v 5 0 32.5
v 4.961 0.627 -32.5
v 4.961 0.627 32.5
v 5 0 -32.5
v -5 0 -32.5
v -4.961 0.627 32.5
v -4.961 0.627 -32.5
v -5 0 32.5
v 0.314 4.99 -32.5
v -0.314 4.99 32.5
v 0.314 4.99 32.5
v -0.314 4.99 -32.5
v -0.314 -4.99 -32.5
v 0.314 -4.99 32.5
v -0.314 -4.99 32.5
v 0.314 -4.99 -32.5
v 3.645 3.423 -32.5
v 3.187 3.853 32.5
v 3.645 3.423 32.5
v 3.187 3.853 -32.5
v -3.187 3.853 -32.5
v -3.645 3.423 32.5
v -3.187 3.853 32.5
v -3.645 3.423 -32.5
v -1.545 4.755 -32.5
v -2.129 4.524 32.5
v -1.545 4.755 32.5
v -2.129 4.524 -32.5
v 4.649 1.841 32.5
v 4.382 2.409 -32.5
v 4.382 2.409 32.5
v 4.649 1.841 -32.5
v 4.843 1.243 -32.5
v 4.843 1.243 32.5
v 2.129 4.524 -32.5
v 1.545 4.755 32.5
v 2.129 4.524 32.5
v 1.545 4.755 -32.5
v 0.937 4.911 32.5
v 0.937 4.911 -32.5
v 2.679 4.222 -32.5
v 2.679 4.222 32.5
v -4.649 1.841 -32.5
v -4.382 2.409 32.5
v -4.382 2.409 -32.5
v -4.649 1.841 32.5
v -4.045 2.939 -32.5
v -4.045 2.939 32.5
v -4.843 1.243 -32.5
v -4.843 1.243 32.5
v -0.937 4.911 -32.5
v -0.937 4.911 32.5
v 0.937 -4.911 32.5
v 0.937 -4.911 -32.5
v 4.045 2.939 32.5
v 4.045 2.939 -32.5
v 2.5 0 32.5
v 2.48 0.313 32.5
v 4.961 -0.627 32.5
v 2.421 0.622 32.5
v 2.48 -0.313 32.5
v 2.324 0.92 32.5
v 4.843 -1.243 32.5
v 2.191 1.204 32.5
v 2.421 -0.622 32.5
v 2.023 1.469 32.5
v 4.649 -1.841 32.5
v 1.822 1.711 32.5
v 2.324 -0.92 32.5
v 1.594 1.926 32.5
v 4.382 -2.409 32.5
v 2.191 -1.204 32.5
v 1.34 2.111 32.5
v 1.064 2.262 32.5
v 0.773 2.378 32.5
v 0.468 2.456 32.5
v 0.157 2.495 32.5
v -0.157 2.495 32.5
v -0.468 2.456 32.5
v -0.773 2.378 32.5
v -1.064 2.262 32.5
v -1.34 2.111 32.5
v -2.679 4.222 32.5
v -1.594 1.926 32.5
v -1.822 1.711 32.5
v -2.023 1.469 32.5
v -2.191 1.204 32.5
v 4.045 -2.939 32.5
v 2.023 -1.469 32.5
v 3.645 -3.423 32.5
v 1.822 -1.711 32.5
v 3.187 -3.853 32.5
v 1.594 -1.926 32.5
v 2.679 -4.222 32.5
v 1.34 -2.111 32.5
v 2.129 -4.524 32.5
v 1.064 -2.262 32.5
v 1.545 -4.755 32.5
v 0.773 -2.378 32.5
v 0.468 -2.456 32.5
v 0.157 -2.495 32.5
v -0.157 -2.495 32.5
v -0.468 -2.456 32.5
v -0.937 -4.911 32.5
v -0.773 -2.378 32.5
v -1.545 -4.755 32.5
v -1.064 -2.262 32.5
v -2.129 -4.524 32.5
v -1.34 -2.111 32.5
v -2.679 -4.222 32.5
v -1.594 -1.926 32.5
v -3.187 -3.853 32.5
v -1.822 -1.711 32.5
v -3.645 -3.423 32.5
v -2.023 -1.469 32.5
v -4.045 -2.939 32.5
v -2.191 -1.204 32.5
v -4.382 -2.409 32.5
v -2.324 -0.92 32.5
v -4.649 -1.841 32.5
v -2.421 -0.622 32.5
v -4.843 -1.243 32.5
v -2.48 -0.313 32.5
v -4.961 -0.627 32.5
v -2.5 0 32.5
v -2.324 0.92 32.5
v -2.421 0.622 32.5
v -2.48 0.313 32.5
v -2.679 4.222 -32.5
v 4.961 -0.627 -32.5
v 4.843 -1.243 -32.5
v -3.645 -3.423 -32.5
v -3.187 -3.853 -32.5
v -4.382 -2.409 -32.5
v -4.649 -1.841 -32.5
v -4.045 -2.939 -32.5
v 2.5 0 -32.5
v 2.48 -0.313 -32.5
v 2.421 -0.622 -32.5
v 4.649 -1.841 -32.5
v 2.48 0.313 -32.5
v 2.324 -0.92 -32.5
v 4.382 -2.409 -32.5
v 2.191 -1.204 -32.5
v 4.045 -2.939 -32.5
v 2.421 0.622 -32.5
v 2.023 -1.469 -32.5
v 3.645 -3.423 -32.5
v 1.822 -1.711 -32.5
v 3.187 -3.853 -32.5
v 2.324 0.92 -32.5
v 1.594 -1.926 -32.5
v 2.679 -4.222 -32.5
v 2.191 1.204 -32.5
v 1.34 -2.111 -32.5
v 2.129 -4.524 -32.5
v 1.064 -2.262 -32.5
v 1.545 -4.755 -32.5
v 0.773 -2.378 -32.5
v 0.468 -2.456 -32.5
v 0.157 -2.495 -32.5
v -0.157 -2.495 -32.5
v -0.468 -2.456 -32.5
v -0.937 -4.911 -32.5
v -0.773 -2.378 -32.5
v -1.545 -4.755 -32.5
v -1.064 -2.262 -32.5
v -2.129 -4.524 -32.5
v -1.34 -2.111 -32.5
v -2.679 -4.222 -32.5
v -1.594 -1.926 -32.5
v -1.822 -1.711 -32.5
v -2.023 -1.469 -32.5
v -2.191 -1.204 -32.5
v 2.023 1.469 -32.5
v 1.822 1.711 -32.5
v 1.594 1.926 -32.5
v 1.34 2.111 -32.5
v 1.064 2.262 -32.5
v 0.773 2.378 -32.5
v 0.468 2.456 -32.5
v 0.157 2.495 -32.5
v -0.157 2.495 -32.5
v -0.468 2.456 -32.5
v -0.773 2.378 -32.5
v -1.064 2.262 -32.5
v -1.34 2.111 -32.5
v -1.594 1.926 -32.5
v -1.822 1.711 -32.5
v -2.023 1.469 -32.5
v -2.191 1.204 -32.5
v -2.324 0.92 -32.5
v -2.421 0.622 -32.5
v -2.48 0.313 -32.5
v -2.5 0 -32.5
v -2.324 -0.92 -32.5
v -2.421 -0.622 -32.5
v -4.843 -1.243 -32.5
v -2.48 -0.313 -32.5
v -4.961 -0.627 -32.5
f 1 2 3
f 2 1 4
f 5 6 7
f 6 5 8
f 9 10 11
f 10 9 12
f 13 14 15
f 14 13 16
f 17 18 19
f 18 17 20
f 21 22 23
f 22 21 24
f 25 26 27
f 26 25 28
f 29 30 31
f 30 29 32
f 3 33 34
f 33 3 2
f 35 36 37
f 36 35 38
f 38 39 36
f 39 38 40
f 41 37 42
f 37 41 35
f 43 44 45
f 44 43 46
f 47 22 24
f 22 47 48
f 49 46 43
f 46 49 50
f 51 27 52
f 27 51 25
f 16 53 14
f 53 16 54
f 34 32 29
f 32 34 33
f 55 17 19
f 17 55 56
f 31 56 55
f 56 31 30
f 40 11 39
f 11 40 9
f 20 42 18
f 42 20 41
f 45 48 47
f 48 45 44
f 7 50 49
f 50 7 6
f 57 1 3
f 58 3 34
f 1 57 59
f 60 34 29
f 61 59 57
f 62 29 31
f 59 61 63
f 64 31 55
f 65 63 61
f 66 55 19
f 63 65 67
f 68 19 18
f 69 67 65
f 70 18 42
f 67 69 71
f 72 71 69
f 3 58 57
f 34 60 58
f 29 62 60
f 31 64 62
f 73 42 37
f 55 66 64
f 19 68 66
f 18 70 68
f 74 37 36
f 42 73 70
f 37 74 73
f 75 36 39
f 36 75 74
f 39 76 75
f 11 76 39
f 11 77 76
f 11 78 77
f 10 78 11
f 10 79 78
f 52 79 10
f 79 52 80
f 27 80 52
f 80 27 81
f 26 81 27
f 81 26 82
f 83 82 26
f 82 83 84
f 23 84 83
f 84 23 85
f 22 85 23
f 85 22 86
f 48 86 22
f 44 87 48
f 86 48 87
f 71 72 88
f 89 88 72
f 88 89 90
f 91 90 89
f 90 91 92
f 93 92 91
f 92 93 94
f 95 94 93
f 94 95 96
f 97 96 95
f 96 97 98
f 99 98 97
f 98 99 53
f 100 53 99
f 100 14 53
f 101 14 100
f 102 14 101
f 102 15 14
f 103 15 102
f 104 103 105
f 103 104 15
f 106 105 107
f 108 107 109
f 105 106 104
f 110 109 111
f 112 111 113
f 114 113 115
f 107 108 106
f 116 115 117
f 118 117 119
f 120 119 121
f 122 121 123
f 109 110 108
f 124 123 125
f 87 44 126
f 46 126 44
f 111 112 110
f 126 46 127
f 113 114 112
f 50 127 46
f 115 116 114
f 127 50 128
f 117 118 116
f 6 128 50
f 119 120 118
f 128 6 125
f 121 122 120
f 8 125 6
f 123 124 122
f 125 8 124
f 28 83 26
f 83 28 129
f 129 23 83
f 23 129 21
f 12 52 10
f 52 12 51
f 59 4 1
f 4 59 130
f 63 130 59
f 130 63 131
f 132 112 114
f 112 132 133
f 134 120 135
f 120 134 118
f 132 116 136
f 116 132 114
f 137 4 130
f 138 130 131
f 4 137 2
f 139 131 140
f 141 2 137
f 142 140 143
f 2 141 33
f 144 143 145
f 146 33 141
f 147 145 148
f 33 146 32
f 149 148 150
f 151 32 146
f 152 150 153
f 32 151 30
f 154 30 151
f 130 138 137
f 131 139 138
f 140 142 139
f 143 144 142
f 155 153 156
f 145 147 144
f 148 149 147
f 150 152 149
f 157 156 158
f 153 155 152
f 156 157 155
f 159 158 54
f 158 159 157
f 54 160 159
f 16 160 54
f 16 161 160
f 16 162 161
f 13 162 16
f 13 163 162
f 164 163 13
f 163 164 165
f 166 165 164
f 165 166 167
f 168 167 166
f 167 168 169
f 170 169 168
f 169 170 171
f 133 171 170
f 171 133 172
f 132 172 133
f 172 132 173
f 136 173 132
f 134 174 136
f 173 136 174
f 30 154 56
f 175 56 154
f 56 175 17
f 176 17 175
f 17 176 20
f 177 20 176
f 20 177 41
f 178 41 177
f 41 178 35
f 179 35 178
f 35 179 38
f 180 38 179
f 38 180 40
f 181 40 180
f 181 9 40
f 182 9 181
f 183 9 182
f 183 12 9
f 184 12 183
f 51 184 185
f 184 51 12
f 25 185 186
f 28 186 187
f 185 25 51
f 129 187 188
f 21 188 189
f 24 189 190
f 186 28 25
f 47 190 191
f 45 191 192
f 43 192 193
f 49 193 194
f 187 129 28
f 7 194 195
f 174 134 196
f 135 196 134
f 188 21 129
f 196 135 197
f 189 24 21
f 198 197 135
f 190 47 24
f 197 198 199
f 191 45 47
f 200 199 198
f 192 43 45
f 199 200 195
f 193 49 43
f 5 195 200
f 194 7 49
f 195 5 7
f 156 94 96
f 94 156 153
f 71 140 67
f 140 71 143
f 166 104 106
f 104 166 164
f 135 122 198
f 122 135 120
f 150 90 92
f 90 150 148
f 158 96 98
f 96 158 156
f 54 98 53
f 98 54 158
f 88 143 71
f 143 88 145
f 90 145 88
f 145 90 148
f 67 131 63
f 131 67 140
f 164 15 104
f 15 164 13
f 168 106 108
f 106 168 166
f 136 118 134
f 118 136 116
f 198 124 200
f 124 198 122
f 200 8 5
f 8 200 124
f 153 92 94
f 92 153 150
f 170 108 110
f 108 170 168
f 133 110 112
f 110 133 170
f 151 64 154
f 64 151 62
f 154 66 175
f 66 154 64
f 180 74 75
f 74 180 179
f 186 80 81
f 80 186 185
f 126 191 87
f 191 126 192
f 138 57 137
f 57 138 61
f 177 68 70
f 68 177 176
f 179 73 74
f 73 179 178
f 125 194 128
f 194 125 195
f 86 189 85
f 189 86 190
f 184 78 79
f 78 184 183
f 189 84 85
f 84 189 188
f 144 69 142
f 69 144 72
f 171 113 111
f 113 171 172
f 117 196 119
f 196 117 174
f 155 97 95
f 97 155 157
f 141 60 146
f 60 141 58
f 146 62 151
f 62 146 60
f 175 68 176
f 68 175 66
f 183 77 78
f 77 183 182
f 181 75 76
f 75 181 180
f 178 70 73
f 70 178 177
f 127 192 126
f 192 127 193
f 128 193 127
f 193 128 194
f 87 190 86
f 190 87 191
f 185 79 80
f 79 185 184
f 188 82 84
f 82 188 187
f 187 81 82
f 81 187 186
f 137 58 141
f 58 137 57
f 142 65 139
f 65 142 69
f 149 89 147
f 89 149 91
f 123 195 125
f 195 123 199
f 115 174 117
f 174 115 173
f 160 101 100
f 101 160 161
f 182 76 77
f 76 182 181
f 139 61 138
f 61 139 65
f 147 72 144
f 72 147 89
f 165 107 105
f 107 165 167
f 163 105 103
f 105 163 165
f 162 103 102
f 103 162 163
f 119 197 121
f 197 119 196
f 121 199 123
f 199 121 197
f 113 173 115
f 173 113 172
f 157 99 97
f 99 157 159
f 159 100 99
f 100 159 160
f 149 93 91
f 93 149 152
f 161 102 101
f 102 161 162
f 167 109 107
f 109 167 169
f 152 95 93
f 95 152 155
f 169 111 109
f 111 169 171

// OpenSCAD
$fn = 50;


difference() {
	union() {
		translate(v = [0, 0, -32.5000000000]) {
			cylinder(h = 65, r = 5.0000000000);
		}
	}
	union() {
		translate(v = [0, 0, -100.0000000000]) {
			cylinder(h = 200, r = 2.5000000000);
		}
	}
}
